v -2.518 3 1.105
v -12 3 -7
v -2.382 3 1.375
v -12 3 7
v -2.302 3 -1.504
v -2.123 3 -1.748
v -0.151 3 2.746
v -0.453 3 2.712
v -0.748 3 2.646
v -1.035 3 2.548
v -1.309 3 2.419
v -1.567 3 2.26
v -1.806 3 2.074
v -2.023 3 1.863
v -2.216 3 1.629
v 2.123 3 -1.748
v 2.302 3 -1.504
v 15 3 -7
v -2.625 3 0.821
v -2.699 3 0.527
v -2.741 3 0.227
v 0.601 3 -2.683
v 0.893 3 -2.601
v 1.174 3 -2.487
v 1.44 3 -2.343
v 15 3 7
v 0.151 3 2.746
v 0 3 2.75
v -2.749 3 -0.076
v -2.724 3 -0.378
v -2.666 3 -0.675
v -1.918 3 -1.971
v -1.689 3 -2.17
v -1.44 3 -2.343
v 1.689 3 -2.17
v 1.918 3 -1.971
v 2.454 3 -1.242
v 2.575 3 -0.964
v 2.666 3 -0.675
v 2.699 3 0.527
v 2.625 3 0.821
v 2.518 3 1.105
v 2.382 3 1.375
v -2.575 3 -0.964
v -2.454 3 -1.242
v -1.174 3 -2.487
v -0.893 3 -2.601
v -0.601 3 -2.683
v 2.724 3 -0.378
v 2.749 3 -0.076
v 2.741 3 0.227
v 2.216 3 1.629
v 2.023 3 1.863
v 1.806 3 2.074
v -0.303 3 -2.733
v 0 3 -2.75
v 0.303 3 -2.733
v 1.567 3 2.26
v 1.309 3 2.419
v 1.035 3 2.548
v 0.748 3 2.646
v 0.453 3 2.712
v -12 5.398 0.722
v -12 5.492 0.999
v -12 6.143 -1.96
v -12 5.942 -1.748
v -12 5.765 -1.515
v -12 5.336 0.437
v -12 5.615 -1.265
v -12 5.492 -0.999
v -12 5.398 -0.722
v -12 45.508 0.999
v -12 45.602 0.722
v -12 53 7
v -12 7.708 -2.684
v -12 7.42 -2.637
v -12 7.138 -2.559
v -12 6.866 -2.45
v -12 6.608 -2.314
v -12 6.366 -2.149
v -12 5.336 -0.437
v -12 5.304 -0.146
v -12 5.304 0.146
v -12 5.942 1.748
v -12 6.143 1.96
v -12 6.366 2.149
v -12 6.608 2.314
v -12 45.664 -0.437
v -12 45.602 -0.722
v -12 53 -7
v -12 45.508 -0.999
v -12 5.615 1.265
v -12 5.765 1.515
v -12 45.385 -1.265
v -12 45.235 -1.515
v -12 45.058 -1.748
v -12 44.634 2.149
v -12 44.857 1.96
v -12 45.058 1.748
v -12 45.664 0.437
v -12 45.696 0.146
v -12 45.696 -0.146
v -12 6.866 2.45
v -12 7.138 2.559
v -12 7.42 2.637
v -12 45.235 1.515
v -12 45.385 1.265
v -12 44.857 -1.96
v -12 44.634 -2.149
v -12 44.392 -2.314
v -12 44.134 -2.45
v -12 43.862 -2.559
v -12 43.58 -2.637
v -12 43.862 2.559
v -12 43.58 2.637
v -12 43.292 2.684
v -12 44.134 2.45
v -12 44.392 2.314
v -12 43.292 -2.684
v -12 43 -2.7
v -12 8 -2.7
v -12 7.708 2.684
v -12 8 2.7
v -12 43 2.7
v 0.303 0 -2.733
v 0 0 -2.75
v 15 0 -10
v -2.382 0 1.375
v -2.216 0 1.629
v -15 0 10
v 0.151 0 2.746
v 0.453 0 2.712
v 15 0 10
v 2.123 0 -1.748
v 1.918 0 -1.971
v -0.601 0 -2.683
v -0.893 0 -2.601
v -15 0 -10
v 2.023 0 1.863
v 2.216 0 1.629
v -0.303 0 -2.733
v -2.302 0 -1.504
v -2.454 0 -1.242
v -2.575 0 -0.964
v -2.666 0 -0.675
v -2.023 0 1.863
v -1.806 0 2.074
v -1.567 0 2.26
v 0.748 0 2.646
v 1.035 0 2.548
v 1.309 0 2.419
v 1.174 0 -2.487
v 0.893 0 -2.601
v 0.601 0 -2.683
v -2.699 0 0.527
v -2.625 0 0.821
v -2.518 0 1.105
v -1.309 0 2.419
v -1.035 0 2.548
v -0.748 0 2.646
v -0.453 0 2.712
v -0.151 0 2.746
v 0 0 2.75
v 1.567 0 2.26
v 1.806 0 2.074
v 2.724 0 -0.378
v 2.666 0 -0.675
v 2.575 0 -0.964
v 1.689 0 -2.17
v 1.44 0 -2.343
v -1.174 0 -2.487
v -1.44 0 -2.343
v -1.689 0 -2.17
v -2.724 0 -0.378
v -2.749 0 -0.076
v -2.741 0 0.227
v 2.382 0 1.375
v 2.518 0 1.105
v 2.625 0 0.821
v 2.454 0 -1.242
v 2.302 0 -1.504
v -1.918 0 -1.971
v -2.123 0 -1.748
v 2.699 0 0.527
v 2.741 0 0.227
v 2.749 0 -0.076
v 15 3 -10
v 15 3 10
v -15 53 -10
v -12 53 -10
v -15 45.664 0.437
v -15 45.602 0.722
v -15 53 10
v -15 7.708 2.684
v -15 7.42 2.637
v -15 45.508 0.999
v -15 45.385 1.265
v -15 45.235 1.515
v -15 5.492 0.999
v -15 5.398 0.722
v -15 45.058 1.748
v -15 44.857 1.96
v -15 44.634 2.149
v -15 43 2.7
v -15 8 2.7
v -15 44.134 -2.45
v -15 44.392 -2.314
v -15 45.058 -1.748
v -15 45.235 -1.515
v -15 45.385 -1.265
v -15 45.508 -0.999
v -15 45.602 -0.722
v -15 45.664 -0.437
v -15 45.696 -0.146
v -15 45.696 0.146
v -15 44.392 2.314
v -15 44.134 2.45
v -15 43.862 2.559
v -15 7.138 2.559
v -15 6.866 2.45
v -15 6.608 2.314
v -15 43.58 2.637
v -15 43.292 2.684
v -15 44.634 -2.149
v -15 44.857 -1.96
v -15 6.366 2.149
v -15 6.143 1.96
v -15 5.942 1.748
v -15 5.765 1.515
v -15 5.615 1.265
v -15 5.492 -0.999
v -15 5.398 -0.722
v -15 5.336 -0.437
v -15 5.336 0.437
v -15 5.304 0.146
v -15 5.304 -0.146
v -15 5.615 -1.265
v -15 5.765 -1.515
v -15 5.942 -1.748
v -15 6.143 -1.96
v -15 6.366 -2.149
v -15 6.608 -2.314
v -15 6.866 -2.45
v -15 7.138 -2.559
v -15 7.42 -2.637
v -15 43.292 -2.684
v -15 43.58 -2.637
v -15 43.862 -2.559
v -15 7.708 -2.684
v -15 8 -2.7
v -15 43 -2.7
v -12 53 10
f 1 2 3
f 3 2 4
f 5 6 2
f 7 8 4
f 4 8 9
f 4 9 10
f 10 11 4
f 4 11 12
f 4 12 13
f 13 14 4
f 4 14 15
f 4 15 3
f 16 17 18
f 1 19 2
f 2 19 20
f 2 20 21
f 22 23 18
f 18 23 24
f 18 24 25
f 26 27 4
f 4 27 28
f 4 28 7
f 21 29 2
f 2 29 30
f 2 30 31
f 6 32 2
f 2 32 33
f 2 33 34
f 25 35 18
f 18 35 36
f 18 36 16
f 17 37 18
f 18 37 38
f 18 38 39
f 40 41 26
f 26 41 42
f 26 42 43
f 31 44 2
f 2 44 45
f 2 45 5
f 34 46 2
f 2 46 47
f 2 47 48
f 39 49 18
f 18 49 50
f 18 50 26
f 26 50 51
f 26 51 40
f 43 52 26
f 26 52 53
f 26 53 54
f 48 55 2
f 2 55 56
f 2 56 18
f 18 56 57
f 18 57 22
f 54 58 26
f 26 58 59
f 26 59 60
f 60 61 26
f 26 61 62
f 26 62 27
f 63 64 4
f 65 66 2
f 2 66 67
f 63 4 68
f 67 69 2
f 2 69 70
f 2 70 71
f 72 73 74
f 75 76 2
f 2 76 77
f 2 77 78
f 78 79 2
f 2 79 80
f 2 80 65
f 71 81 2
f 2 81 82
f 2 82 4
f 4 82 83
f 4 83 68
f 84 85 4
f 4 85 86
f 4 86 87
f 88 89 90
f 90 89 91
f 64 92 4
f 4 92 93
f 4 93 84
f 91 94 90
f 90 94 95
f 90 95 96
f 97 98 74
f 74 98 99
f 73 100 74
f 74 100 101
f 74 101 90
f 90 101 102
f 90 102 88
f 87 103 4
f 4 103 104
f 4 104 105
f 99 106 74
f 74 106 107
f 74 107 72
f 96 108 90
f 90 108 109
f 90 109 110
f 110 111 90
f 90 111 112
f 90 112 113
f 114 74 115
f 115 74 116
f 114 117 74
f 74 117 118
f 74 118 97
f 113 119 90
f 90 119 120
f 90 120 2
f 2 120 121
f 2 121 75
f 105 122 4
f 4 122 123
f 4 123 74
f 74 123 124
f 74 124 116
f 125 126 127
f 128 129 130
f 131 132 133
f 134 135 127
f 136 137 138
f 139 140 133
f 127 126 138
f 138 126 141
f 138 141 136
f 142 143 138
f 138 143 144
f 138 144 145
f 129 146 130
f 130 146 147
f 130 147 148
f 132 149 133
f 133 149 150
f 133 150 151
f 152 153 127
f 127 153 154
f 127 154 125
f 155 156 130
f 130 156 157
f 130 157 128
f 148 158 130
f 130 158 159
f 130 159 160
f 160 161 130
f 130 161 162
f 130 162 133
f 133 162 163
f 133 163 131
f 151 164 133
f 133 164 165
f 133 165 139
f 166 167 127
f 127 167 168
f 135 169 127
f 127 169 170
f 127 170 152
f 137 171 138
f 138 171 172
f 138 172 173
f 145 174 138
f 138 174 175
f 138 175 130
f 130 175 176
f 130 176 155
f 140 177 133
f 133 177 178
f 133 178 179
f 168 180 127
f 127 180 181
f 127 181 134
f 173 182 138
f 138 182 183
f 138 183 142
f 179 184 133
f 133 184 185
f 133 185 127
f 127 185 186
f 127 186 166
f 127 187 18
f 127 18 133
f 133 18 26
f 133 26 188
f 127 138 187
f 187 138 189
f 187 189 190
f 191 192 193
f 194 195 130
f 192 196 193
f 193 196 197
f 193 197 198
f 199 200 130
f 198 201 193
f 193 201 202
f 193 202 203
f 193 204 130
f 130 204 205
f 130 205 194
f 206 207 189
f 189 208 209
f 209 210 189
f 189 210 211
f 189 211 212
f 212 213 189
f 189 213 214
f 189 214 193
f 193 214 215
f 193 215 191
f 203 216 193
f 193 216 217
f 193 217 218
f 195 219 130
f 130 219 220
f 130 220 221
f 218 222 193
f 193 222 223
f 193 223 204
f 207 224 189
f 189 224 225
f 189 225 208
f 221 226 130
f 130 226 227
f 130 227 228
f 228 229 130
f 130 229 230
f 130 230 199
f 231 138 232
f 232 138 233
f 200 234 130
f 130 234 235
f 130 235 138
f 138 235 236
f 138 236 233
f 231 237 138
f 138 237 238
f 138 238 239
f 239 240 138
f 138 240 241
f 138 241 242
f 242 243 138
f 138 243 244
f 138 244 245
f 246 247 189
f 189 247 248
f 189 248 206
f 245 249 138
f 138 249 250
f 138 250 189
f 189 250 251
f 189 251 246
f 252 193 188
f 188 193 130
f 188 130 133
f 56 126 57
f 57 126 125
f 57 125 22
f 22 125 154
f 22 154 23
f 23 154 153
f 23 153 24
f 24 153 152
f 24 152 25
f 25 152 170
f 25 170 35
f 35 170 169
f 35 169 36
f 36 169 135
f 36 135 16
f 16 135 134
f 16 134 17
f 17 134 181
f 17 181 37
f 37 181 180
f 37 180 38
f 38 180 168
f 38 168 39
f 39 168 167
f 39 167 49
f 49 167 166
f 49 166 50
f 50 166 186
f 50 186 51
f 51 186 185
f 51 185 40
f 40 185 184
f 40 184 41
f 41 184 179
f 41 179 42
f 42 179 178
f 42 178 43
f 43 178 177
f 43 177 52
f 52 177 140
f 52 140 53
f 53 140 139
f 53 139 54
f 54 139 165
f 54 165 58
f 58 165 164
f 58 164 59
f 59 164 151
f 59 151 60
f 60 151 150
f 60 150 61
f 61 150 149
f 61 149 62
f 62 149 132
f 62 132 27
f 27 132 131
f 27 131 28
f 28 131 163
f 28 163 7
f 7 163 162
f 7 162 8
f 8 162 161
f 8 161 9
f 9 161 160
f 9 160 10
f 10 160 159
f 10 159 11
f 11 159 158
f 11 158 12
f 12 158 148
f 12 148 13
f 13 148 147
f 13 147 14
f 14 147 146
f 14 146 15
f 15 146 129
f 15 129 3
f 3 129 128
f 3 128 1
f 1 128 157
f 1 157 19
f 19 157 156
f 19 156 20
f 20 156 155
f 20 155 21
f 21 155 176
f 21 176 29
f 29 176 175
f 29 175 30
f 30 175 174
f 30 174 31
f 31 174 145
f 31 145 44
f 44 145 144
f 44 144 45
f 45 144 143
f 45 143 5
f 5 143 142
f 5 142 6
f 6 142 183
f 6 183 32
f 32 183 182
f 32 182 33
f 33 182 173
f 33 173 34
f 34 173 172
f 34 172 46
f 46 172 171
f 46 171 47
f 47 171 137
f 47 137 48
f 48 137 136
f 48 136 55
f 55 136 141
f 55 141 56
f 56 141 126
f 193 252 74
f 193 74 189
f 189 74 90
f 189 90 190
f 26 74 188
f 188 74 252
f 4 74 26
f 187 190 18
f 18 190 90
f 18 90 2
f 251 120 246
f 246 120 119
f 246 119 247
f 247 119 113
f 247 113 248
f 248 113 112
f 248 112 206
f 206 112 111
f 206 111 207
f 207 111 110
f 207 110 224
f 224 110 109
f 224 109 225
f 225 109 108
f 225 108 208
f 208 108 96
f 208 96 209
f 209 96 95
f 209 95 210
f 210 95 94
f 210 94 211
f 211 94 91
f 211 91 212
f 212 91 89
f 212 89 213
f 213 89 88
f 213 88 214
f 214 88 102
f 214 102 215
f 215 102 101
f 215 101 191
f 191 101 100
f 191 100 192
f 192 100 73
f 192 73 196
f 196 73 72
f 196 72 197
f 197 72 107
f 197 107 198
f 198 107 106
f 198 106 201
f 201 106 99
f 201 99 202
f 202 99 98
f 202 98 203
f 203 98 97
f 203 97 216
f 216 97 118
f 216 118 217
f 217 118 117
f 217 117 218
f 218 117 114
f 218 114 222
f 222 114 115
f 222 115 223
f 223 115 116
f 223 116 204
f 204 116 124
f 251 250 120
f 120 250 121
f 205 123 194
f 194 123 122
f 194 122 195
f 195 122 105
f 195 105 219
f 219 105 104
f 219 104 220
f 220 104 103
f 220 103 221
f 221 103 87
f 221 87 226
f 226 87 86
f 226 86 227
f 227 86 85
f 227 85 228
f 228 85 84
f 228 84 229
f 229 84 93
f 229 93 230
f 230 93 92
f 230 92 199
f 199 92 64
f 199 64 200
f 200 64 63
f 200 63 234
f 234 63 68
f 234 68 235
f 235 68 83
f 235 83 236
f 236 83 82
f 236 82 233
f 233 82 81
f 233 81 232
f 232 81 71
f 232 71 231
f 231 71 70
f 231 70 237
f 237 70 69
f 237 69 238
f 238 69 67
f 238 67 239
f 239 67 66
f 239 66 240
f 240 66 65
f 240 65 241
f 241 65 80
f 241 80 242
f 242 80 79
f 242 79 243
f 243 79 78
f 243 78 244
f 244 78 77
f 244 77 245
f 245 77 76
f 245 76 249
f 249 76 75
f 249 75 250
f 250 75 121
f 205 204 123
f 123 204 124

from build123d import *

# Parameters (mm, degrees)
SKETCH1_W           = 30
SKETCH1_H           = 20
SKETCH1_R           = 2.75
BOSS_EXTRUDE1_DEPTH = 3
SKETCH2_W           = 3
SKETCH2_H           = 20
BOSS_EXTRUDE2_DEPTH = 50
RIB1_REACH          = 60.6
SKETCH3_WALL_W      = 176.024973172
SKETCH3_WALL_H      = 3
CUT_EXTRUDE1_DEPTH  = 61.3158354


with BuildPart() as part:
    # Sketch1 → Boss-Extrude1 (new body)
    with BuildSketch(Plane(origin=(0, 0, 0), x_dir=(1, 0, 0), z_dir=(0, 1, 0))):
        Rectangle(SKETCH1_W, SKETCH1_H)
        with Locations(Location((0, 0, 0), (0, 0, 270))):
            Circle(SKETCH1_R, mode=Mode.SUBTRACT)
    extrude(amount=BOSS_EXTRUDE1_DEPTH)

    # Sketch2 → Boss-Extrude2 (add)
    with BuildSketch(Plane(origin=(0, 3, 0), x_dir=(1, 0, 0), z_dir=(0, 1, 0))):
        with Locations((-13.5, 0)):
            Rectangle(SKETCH2_W, SKETCH2_H)
    extrude(amount=BOSS_EXTRUDE2_DEPTH)

    # Sketch3 wall → Rib1 (add, up to next)
    with BuildSketch(Plane(origin=(1.5, 28, 10), x_dir=(0.475148914735, -0.879905397657, 0), z_dir=(0.879905397657, 0.475148914735, 0)), mode=Mode.PRIVATE) as rib1_sk1:
        with Locations((0, 1.5)):
            Rectangle(SKETCH3_WALL_W, SKETCH3_WALL_H)
    rib1_tool1 = extrude(rib1_sk1.sketch, amount=-RIB1_REACH, mode=Mode.PRIVATE) - part.part
    rib1 = rib1_tool1.solids().sort_by_distance((1.5, 28, 10))[0]
    add(rib1)

    # Mirror1: Rib1 across plane
    add(rib1.mirror(Plane.XY))

    # Sketch4 → Cut-Extrude1 (cut, through all)
    with BuildSketch(Plane(origin=(-12, 0, 0), x_dir=(0, 0, -1), z_dir=(1, 0, 0))):
        with BuildLine():
            Line((2.7, 43), (2.7, 8))
            ThreePointArc((2.7, 8), (0, 5.3), (-2.7, 8))
            Line((-2.7, 8), (-2.7, 43))
            ThreePointArc((-2.7, 43), (0, 45.7), (2.7, 43))
        make_face()
    extrude(amount=-CUT_EXTRUDE1_DEPTH, mode=Mode.SUBTRACT)


solid = part.part
